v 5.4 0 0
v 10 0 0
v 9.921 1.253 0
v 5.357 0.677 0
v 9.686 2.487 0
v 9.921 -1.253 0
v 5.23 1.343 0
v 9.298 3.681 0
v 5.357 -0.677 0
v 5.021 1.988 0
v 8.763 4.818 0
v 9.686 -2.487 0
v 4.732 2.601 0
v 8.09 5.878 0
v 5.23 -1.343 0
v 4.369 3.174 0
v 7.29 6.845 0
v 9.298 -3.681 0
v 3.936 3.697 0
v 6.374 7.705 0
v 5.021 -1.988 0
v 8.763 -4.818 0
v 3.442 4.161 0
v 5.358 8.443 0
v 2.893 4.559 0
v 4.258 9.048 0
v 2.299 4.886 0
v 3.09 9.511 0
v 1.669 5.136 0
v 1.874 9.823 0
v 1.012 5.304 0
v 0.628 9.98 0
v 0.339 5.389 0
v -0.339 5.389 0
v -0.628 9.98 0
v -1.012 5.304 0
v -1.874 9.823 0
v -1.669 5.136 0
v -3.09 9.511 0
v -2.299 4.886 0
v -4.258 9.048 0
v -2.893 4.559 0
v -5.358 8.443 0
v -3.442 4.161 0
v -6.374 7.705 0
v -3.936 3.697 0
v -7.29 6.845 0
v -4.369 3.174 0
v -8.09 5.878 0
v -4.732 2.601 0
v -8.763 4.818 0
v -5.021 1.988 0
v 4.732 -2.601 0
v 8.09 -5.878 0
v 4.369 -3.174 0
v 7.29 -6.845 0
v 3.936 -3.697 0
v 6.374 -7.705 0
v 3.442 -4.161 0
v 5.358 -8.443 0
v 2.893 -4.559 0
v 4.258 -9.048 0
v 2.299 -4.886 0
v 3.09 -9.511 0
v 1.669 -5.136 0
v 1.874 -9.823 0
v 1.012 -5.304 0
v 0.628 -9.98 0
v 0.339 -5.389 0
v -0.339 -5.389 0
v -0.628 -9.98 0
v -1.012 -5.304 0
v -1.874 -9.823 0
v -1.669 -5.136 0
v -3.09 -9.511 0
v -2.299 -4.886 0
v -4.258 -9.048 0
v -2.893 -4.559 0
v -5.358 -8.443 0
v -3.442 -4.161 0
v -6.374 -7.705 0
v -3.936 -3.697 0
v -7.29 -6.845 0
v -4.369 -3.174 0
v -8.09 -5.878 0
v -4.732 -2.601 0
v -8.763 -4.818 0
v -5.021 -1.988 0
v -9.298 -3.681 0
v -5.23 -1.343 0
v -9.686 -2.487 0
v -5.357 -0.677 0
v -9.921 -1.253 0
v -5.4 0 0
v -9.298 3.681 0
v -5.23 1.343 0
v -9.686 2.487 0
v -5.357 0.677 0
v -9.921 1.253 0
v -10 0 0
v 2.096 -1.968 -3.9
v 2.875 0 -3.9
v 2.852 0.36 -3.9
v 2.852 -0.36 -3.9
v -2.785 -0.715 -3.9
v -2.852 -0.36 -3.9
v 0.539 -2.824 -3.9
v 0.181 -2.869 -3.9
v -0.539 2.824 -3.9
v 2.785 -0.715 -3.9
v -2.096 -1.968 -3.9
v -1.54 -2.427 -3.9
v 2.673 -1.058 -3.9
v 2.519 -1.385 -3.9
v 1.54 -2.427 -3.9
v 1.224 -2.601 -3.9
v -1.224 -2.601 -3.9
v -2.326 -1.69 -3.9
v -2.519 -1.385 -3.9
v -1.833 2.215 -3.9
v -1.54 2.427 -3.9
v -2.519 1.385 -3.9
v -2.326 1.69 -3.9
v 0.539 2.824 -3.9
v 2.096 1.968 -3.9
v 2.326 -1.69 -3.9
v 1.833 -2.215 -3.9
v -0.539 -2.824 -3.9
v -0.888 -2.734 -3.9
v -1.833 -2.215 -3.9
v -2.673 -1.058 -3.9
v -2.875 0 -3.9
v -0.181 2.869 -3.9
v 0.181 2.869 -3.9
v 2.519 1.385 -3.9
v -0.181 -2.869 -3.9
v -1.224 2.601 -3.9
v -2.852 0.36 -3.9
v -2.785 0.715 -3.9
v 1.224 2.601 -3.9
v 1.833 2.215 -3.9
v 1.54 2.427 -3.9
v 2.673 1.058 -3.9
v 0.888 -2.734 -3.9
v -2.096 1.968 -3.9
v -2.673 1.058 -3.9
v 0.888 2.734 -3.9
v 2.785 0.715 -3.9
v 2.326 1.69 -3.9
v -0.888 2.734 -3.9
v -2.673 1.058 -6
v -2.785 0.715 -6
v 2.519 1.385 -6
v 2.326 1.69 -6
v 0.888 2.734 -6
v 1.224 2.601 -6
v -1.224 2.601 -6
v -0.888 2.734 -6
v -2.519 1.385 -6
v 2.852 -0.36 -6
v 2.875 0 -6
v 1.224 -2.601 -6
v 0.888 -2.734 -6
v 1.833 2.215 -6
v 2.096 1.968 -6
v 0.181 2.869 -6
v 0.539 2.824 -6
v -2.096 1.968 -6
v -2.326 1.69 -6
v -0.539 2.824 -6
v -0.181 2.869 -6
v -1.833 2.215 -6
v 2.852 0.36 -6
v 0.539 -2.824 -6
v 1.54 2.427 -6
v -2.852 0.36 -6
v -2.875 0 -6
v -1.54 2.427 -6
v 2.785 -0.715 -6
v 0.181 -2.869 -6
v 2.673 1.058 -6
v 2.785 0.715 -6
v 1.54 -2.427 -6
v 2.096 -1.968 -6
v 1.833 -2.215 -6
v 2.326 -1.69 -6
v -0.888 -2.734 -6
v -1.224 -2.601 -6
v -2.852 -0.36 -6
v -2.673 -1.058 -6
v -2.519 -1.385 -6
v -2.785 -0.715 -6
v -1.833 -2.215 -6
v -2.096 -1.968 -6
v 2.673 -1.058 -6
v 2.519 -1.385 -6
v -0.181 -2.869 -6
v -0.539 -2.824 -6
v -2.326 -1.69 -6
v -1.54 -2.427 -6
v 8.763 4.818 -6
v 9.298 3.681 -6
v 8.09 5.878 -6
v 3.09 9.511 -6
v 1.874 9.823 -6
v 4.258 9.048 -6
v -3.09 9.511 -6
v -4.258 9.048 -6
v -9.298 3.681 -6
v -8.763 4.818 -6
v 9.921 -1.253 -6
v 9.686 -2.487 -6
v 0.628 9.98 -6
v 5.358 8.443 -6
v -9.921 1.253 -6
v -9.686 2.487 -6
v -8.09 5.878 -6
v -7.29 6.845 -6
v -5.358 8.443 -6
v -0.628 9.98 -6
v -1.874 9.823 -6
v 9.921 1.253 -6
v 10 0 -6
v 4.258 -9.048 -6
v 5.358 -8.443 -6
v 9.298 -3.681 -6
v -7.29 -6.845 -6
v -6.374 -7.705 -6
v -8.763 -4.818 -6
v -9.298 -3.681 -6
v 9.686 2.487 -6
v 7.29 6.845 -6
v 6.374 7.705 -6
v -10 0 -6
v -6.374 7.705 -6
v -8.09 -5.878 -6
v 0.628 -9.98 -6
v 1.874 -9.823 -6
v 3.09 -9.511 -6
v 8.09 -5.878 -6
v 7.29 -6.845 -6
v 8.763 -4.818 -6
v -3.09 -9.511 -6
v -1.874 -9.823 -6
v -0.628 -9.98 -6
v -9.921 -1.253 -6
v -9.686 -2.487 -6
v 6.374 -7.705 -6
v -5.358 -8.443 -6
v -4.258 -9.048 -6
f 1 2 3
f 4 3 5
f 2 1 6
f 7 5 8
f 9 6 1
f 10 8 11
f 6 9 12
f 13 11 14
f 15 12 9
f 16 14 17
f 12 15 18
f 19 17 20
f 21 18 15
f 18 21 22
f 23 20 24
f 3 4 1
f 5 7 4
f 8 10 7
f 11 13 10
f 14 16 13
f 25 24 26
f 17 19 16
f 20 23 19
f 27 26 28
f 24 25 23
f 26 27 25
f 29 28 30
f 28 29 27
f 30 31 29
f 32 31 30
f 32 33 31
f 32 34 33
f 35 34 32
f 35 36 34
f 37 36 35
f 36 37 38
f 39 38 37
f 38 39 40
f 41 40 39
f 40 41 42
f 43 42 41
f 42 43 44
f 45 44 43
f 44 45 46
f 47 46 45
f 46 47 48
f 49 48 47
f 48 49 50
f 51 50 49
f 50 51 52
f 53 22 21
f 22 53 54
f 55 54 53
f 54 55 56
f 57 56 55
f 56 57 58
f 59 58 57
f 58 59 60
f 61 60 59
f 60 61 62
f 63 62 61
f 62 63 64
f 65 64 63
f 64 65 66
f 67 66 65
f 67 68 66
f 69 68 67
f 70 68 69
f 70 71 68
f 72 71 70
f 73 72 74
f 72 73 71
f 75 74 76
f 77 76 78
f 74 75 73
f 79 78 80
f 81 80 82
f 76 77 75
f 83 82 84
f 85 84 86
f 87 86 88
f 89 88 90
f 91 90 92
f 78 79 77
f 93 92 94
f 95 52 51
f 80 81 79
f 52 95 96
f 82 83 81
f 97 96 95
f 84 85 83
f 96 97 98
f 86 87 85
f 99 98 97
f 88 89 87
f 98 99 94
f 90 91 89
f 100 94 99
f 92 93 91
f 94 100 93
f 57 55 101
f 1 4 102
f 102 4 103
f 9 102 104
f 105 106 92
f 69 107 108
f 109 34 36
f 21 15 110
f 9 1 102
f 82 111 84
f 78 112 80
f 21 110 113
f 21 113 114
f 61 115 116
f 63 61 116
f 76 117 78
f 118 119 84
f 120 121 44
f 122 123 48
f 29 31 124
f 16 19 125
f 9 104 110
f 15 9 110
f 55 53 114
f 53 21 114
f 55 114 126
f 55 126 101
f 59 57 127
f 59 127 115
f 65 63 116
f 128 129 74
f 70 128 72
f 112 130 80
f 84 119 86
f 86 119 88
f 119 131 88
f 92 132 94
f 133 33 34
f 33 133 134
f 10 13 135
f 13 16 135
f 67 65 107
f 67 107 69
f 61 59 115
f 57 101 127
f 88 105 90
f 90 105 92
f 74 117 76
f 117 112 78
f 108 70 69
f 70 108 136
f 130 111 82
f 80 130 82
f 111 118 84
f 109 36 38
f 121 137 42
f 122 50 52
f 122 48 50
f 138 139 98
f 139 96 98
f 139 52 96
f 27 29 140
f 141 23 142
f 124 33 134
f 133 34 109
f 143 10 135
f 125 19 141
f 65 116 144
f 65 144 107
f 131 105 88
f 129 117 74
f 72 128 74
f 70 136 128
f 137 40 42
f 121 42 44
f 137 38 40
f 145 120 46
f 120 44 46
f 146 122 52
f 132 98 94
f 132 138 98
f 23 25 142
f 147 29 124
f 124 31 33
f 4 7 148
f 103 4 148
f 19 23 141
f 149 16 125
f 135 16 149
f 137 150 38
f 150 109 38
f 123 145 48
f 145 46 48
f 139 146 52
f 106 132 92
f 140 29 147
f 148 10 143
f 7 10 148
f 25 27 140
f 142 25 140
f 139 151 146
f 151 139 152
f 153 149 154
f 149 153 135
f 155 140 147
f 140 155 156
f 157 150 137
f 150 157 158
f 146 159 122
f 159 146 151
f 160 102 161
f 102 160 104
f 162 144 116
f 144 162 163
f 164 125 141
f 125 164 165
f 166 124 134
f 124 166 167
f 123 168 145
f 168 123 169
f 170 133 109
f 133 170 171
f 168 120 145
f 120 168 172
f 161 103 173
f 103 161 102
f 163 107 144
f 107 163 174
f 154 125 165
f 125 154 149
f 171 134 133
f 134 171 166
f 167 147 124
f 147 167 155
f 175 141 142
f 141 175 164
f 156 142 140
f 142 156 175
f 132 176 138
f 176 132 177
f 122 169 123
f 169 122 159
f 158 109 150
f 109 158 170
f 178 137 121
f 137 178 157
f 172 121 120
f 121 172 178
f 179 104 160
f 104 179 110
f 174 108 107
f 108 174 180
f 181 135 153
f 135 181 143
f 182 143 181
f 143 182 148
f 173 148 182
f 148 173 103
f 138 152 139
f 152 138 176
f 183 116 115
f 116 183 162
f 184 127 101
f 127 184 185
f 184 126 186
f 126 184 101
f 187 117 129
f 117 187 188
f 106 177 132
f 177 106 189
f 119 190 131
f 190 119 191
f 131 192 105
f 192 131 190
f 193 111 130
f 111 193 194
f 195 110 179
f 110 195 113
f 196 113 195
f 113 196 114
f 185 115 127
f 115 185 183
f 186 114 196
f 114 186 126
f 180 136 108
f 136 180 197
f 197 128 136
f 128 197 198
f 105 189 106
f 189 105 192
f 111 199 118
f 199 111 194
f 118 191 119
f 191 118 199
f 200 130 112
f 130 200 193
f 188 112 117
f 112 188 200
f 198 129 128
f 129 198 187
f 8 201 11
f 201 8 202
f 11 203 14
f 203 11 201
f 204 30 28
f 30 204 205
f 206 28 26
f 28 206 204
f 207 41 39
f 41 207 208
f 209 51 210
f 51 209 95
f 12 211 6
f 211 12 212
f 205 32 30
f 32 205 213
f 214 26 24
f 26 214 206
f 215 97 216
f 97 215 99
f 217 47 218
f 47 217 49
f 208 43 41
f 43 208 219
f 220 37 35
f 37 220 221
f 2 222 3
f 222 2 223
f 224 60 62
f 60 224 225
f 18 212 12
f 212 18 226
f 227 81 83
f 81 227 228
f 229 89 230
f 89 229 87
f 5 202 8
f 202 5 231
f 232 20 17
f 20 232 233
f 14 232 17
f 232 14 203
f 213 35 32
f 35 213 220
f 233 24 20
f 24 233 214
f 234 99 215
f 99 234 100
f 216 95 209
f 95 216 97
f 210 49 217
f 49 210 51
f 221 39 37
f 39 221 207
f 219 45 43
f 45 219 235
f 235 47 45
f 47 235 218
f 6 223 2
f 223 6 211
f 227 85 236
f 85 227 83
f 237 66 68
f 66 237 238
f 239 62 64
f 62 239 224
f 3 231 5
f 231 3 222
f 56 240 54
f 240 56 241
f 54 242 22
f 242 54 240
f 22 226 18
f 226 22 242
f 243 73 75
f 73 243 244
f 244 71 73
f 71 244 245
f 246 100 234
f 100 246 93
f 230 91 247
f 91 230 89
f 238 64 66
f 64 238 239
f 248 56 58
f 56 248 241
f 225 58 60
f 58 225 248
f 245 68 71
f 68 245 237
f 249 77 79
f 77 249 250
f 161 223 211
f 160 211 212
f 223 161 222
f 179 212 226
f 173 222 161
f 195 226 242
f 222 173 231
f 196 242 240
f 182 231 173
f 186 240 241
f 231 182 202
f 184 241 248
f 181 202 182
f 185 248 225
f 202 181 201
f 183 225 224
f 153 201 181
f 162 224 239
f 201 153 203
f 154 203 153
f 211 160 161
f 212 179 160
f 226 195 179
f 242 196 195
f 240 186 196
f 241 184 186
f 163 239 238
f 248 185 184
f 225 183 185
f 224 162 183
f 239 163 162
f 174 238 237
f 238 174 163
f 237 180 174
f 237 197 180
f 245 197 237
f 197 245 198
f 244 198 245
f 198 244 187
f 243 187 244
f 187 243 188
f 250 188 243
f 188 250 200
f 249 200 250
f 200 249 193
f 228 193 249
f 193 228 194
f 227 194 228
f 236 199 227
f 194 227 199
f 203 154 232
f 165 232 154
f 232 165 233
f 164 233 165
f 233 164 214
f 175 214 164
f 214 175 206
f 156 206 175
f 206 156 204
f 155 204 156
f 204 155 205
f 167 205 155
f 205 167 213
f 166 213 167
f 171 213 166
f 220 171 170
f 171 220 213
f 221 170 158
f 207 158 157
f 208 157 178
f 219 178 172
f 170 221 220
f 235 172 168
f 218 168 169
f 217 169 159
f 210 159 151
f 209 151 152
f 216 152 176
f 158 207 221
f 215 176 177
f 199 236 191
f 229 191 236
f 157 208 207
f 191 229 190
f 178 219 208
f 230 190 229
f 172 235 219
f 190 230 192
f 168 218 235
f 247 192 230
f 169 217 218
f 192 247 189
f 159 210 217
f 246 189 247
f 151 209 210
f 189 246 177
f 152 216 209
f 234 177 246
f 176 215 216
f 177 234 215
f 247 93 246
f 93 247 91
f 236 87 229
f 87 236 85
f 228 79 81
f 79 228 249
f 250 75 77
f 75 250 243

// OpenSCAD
$fn = 50;

difference() {
	union() {
		translate(v = [0, 0, -6.0]) {
			cylinder(h = 6, r = 10.0);
		}
	}
	union() {
		translate(v = [0, 0, 0]) {
			rotate(a = [0, 0, 0]) {
				difference() {
					union() {
						translate(v = [0, 0, -9.0]) {
							cylinder(h = 9, r = 2.6);
						}
						translate(v = [0, 0, -3.9]) {
							cylinder(h = 3.9, r1 = 2.875, r2 = 5.4);
						}
						translate(v = [0, 0, -9.0]) {
							cylinder(h = 9, r = 2.875);
						}
						translate(v = [0, 0, -9.0]) {
							cylinder(h = 9, r = 2.6);
						}
					}
					union();
				}
			}
		}
	}
}
